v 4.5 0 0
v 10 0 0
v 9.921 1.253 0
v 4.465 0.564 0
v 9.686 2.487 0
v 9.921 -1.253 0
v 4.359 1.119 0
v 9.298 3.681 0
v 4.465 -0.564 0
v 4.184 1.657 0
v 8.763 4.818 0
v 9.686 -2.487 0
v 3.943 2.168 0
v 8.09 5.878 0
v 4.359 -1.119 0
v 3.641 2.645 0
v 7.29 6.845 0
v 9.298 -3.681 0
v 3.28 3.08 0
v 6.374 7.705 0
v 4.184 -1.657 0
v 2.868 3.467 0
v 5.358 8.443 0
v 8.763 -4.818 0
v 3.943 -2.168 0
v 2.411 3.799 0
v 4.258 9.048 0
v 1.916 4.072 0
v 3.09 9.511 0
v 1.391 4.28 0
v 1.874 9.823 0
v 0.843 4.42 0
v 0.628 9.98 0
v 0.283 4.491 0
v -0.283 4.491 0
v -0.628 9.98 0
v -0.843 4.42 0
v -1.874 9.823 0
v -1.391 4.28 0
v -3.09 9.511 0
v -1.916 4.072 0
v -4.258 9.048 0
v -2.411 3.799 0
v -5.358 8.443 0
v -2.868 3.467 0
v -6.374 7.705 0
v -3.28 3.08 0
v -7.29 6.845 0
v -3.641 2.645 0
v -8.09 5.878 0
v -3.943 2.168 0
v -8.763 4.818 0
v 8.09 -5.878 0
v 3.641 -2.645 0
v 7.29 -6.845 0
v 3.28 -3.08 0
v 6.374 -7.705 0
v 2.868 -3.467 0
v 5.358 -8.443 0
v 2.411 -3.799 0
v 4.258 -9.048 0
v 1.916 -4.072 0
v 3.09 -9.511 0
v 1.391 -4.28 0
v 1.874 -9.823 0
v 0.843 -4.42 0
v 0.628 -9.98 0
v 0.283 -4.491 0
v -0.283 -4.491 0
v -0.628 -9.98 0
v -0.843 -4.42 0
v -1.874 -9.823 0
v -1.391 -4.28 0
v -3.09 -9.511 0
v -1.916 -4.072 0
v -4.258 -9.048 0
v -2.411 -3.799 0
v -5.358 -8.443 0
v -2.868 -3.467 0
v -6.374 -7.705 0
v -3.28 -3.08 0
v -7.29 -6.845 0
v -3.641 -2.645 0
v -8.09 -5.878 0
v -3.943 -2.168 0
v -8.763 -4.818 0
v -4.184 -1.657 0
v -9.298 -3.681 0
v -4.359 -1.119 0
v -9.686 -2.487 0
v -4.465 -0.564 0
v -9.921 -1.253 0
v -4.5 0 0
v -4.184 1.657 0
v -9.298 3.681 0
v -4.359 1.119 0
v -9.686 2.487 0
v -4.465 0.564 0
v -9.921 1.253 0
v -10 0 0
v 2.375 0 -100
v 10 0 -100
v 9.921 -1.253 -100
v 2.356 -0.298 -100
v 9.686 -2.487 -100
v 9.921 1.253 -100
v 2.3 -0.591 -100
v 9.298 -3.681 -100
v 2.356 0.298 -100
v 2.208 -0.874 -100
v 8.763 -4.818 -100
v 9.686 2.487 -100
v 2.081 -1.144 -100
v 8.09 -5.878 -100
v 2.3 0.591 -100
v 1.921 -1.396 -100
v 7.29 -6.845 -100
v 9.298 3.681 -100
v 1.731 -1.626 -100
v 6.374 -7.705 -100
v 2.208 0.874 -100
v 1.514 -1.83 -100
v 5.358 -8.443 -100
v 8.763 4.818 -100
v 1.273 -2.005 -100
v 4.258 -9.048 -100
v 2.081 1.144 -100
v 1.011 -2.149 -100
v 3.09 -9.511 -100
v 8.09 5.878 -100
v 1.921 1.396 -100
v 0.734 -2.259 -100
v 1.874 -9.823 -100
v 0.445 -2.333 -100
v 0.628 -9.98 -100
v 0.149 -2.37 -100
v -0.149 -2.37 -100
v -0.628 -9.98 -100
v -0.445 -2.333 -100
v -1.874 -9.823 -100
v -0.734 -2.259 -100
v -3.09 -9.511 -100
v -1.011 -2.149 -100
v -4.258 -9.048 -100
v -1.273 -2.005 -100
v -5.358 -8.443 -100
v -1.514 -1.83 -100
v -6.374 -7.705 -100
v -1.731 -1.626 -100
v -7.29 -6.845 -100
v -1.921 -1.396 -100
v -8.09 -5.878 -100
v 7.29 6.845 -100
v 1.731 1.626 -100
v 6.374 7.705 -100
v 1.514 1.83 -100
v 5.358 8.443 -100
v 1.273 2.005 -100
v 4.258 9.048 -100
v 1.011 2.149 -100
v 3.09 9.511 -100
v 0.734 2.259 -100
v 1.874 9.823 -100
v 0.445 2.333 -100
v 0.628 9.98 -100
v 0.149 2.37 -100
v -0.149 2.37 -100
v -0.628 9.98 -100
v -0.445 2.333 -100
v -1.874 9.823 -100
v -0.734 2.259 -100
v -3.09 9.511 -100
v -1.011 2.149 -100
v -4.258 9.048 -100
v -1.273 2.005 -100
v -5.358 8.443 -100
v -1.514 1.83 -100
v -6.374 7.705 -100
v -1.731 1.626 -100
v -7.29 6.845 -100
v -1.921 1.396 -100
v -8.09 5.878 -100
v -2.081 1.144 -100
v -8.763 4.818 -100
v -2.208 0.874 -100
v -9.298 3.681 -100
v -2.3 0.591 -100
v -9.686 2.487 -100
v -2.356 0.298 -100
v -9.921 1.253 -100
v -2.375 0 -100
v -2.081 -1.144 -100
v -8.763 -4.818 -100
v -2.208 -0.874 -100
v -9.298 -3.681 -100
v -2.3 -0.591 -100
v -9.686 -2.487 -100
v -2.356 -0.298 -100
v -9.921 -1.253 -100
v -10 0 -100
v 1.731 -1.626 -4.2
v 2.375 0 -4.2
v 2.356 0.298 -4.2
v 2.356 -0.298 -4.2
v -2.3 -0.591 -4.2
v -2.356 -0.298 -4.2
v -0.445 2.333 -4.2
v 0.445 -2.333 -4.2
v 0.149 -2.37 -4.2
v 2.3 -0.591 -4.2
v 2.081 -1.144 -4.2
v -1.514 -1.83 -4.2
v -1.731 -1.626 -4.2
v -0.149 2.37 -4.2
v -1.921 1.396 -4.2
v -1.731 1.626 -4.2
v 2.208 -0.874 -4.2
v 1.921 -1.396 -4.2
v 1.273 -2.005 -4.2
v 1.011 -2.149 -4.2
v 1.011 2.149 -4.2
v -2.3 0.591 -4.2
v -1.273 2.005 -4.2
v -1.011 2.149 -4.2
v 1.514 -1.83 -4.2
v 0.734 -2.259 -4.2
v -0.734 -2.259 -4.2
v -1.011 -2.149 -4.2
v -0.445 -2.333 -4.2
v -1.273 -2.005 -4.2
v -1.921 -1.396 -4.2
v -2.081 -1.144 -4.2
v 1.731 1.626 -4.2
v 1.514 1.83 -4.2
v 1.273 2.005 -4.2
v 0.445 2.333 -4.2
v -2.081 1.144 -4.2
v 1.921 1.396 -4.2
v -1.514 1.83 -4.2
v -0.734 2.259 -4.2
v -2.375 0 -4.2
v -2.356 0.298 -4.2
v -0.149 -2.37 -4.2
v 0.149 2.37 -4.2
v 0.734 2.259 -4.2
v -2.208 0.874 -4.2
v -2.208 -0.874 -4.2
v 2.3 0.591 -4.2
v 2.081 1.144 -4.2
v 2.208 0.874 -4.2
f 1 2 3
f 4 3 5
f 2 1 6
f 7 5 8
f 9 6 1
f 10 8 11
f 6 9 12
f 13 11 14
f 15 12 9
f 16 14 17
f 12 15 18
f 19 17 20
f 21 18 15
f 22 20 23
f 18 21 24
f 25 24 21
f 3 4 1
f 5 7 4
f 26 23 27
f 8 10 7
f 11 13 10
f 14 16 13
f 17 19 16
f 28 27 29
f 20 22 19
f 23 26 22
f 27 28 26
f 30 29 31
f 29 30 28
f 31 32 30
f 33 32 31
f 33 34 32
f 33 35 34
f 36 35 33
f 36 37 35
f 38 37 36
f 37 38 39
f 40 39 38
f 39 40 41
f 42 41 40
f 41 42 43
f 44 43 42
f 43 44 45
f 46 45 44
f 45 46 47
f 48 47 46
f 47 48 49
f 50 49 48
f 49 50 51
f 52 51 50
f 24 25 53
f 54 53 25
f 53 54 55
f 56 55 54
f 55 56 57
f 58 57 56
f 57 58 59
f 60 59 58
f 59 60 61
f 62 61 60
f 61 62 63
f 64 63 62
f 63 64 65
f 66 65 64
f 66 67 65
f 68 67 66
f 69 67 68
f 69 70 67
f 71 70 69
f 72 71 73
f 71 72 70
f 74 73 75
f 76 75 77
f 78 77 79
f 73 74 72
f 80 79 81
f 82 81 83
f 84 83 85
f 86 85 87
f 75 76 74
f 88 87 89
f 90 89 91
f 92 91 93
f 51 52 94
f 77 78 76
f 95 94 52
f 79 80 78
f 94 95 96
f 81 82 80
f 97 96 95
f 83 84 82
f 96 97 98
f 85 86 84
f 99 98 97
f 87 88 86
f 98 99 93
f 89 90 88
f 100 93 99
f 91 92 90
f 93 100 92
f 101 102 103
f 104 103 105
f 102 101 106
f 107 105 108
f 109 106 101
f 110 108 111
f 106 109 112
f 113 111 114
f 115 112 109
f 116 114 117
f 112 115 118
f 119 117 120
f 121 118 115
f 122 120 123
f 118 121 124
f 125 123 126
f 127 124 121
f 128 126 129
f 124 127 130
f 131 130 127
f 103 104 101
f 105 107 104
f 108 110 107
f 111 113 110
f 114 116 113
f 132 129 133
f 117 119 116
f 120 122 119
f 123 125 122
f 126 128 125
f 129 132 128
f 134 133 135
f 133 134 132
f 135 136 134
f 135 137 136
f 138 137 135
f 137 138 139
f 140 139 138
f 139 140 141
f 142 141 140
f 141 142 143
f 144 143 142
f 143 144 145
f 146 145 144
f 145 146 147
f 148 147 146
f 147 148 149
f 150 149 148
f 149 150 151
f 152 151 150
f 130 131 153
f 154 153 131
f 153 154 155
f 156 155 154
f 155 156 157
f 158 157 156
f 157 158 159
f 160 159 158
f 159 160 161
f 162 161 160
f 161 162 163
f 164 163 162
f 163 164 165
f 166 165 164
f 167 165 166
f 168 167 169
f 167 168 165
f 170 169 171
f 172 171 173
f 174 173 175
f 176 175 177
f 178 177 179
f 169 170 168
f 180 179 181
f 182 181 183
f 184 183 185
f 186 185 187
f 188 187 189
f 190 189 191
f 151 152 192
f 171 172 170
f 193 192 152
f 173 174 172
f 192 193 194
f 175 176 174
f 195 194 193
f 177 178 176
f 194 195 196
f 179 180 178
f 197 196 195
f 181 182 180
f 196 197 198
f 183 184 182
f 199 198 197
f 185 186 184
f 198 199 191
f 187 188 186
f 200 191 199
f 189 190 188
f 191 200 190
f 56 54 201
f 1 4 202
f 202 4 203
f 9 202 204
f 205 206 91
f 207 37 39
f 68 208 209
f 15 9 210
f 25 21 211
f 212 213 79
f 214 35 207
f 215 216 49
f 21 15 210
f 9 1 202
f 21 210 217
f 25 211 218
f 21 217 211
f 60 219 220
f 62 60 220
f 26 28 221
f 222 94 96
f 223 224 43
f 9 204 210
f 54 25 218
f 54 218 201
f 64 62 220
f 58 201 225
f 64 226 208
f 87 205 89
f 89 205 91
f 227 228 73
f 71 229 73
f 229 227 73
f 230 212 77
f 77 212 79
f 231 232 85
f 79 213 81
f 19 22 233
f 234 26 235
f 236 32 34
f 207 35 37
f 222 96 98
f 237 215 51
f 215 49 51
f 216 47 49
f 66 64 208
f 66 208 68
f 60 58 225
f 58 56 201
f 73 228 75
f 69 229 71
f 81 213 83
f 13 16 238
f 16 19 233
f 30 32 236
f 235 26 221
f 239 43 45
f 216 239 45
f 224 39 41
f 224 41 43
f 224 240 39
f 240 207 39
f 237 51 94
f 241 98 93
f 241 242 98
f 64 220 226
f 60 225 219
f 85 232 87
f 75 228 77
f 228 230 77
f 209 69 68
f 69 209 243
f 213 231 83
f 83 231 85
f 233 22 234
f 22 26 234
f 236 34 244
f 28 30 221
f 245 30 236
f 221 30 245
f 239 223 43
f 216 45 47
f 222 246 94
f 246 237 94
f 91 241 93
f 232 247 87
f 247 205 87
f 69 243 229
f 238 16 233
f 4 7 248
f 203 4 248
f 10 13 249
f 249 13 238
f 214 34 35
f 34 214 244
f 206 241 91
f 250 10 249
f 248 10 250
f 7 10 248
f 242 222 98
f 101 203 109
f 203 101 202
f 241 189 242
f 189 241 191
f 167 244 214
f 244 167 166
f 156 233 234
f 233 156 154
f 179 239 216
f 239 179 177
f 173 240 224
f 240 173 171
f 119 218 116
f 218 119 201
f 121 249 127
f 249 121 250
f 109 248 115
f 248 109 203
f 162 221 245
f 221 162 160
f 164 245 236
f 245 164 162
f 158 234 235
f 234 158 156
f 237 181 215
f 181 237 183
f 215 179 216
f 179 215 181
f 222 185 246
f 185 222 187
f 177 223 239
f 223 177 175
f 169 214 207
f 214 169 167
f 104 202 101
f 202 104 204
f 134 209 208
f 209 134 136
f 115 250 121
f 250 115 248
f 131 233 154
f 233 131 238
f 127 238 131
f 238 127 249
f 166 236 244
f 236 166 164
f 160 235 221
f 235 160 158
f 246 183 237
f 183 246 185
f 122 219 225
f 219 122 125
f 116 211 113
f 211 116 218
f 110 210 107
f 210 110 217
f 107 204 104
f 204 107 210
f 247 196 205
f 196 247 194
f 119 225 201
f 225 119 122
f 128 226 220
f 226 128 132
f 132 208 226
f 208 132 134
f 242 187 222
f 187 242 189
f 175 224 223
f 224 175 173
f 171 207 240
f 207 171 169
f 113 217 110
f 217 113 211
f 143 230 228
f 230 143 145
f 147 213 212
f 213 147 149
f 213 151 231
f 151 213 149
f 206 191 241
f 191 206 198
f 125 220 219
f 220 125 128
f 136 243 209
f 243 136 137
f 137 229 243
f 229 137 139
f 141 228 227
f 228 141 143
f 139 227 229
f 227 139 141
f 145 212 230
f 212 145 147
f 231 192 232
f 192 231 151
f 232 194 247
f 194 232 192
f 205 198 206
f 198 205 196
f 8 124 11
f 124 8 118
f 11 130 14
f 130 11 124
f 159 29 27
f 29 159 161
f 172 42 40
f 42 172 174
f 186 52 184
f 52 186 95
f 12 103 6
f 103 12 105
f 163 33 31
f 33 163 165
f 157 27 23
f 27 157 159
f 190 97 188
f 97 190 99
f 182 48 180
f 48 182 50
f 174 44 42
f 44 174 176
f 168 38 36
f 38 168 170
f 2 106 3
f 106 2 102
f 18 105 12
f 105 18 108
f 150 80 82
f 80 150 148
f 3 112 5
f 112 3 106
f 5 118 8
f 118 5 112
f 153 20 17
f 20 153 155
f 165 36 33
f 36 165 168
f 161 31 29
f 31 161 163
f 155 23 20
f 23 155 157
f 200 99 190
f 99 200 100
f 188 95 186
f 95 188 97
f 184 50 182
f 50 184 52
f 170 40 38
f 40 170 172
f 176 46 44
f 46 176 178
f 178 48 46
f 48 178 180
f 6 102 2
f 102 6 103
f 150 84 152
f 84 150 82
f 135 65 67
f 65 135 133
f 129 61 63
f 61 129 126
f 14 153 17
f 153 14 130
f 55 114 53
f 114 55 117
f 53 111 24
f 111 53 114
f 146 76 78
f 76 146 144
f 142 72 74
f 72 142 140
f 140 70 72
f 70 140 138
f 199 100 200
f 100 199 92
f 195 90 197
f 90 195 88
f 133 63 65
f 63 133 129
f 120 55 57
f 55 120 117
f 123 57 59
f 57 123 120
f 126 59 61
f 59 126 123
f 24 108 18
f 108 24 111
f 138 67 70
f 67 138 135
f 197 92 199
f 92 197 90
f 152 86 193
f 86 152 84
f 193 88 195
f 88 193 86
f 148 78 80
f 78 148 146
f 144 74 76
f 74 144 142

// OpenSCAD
$fn = 50;


difference() {
	union() {
		translate(v = [0, 0, -100.0000000000]) {
			cylinder(h = 100, r = 10.0000000000);
		}
		cylinder(h = 0, r = 20.0000000000);
	}
	union() {
		translate(v = [0, 0, 0]) {
			rotate(a = [0, 0, 0]) {
				difference() {
					union() {
						#translate(v = [0, 0, -100.0000000000]) {
							cylinder(h = 100, r = 2.2500000000);
						}
						#translate(v = [0, 0, -4.2000000000]) {
							cylinder(h = 4.2000000000, r1 = 2.3750000000, r2 = 4.5000000000);
						}
						#translate(v = [0, 0, -100.0000000000]) {
							cylinder(h = 100, r = 2.3750000000);
						}
						#translate(v = [0, 0, -100.0000000000]) {
							cylinder(h = 100, r = 2.2500000000);
						}
					}
					union();
				}
			}
		}
	}
}
